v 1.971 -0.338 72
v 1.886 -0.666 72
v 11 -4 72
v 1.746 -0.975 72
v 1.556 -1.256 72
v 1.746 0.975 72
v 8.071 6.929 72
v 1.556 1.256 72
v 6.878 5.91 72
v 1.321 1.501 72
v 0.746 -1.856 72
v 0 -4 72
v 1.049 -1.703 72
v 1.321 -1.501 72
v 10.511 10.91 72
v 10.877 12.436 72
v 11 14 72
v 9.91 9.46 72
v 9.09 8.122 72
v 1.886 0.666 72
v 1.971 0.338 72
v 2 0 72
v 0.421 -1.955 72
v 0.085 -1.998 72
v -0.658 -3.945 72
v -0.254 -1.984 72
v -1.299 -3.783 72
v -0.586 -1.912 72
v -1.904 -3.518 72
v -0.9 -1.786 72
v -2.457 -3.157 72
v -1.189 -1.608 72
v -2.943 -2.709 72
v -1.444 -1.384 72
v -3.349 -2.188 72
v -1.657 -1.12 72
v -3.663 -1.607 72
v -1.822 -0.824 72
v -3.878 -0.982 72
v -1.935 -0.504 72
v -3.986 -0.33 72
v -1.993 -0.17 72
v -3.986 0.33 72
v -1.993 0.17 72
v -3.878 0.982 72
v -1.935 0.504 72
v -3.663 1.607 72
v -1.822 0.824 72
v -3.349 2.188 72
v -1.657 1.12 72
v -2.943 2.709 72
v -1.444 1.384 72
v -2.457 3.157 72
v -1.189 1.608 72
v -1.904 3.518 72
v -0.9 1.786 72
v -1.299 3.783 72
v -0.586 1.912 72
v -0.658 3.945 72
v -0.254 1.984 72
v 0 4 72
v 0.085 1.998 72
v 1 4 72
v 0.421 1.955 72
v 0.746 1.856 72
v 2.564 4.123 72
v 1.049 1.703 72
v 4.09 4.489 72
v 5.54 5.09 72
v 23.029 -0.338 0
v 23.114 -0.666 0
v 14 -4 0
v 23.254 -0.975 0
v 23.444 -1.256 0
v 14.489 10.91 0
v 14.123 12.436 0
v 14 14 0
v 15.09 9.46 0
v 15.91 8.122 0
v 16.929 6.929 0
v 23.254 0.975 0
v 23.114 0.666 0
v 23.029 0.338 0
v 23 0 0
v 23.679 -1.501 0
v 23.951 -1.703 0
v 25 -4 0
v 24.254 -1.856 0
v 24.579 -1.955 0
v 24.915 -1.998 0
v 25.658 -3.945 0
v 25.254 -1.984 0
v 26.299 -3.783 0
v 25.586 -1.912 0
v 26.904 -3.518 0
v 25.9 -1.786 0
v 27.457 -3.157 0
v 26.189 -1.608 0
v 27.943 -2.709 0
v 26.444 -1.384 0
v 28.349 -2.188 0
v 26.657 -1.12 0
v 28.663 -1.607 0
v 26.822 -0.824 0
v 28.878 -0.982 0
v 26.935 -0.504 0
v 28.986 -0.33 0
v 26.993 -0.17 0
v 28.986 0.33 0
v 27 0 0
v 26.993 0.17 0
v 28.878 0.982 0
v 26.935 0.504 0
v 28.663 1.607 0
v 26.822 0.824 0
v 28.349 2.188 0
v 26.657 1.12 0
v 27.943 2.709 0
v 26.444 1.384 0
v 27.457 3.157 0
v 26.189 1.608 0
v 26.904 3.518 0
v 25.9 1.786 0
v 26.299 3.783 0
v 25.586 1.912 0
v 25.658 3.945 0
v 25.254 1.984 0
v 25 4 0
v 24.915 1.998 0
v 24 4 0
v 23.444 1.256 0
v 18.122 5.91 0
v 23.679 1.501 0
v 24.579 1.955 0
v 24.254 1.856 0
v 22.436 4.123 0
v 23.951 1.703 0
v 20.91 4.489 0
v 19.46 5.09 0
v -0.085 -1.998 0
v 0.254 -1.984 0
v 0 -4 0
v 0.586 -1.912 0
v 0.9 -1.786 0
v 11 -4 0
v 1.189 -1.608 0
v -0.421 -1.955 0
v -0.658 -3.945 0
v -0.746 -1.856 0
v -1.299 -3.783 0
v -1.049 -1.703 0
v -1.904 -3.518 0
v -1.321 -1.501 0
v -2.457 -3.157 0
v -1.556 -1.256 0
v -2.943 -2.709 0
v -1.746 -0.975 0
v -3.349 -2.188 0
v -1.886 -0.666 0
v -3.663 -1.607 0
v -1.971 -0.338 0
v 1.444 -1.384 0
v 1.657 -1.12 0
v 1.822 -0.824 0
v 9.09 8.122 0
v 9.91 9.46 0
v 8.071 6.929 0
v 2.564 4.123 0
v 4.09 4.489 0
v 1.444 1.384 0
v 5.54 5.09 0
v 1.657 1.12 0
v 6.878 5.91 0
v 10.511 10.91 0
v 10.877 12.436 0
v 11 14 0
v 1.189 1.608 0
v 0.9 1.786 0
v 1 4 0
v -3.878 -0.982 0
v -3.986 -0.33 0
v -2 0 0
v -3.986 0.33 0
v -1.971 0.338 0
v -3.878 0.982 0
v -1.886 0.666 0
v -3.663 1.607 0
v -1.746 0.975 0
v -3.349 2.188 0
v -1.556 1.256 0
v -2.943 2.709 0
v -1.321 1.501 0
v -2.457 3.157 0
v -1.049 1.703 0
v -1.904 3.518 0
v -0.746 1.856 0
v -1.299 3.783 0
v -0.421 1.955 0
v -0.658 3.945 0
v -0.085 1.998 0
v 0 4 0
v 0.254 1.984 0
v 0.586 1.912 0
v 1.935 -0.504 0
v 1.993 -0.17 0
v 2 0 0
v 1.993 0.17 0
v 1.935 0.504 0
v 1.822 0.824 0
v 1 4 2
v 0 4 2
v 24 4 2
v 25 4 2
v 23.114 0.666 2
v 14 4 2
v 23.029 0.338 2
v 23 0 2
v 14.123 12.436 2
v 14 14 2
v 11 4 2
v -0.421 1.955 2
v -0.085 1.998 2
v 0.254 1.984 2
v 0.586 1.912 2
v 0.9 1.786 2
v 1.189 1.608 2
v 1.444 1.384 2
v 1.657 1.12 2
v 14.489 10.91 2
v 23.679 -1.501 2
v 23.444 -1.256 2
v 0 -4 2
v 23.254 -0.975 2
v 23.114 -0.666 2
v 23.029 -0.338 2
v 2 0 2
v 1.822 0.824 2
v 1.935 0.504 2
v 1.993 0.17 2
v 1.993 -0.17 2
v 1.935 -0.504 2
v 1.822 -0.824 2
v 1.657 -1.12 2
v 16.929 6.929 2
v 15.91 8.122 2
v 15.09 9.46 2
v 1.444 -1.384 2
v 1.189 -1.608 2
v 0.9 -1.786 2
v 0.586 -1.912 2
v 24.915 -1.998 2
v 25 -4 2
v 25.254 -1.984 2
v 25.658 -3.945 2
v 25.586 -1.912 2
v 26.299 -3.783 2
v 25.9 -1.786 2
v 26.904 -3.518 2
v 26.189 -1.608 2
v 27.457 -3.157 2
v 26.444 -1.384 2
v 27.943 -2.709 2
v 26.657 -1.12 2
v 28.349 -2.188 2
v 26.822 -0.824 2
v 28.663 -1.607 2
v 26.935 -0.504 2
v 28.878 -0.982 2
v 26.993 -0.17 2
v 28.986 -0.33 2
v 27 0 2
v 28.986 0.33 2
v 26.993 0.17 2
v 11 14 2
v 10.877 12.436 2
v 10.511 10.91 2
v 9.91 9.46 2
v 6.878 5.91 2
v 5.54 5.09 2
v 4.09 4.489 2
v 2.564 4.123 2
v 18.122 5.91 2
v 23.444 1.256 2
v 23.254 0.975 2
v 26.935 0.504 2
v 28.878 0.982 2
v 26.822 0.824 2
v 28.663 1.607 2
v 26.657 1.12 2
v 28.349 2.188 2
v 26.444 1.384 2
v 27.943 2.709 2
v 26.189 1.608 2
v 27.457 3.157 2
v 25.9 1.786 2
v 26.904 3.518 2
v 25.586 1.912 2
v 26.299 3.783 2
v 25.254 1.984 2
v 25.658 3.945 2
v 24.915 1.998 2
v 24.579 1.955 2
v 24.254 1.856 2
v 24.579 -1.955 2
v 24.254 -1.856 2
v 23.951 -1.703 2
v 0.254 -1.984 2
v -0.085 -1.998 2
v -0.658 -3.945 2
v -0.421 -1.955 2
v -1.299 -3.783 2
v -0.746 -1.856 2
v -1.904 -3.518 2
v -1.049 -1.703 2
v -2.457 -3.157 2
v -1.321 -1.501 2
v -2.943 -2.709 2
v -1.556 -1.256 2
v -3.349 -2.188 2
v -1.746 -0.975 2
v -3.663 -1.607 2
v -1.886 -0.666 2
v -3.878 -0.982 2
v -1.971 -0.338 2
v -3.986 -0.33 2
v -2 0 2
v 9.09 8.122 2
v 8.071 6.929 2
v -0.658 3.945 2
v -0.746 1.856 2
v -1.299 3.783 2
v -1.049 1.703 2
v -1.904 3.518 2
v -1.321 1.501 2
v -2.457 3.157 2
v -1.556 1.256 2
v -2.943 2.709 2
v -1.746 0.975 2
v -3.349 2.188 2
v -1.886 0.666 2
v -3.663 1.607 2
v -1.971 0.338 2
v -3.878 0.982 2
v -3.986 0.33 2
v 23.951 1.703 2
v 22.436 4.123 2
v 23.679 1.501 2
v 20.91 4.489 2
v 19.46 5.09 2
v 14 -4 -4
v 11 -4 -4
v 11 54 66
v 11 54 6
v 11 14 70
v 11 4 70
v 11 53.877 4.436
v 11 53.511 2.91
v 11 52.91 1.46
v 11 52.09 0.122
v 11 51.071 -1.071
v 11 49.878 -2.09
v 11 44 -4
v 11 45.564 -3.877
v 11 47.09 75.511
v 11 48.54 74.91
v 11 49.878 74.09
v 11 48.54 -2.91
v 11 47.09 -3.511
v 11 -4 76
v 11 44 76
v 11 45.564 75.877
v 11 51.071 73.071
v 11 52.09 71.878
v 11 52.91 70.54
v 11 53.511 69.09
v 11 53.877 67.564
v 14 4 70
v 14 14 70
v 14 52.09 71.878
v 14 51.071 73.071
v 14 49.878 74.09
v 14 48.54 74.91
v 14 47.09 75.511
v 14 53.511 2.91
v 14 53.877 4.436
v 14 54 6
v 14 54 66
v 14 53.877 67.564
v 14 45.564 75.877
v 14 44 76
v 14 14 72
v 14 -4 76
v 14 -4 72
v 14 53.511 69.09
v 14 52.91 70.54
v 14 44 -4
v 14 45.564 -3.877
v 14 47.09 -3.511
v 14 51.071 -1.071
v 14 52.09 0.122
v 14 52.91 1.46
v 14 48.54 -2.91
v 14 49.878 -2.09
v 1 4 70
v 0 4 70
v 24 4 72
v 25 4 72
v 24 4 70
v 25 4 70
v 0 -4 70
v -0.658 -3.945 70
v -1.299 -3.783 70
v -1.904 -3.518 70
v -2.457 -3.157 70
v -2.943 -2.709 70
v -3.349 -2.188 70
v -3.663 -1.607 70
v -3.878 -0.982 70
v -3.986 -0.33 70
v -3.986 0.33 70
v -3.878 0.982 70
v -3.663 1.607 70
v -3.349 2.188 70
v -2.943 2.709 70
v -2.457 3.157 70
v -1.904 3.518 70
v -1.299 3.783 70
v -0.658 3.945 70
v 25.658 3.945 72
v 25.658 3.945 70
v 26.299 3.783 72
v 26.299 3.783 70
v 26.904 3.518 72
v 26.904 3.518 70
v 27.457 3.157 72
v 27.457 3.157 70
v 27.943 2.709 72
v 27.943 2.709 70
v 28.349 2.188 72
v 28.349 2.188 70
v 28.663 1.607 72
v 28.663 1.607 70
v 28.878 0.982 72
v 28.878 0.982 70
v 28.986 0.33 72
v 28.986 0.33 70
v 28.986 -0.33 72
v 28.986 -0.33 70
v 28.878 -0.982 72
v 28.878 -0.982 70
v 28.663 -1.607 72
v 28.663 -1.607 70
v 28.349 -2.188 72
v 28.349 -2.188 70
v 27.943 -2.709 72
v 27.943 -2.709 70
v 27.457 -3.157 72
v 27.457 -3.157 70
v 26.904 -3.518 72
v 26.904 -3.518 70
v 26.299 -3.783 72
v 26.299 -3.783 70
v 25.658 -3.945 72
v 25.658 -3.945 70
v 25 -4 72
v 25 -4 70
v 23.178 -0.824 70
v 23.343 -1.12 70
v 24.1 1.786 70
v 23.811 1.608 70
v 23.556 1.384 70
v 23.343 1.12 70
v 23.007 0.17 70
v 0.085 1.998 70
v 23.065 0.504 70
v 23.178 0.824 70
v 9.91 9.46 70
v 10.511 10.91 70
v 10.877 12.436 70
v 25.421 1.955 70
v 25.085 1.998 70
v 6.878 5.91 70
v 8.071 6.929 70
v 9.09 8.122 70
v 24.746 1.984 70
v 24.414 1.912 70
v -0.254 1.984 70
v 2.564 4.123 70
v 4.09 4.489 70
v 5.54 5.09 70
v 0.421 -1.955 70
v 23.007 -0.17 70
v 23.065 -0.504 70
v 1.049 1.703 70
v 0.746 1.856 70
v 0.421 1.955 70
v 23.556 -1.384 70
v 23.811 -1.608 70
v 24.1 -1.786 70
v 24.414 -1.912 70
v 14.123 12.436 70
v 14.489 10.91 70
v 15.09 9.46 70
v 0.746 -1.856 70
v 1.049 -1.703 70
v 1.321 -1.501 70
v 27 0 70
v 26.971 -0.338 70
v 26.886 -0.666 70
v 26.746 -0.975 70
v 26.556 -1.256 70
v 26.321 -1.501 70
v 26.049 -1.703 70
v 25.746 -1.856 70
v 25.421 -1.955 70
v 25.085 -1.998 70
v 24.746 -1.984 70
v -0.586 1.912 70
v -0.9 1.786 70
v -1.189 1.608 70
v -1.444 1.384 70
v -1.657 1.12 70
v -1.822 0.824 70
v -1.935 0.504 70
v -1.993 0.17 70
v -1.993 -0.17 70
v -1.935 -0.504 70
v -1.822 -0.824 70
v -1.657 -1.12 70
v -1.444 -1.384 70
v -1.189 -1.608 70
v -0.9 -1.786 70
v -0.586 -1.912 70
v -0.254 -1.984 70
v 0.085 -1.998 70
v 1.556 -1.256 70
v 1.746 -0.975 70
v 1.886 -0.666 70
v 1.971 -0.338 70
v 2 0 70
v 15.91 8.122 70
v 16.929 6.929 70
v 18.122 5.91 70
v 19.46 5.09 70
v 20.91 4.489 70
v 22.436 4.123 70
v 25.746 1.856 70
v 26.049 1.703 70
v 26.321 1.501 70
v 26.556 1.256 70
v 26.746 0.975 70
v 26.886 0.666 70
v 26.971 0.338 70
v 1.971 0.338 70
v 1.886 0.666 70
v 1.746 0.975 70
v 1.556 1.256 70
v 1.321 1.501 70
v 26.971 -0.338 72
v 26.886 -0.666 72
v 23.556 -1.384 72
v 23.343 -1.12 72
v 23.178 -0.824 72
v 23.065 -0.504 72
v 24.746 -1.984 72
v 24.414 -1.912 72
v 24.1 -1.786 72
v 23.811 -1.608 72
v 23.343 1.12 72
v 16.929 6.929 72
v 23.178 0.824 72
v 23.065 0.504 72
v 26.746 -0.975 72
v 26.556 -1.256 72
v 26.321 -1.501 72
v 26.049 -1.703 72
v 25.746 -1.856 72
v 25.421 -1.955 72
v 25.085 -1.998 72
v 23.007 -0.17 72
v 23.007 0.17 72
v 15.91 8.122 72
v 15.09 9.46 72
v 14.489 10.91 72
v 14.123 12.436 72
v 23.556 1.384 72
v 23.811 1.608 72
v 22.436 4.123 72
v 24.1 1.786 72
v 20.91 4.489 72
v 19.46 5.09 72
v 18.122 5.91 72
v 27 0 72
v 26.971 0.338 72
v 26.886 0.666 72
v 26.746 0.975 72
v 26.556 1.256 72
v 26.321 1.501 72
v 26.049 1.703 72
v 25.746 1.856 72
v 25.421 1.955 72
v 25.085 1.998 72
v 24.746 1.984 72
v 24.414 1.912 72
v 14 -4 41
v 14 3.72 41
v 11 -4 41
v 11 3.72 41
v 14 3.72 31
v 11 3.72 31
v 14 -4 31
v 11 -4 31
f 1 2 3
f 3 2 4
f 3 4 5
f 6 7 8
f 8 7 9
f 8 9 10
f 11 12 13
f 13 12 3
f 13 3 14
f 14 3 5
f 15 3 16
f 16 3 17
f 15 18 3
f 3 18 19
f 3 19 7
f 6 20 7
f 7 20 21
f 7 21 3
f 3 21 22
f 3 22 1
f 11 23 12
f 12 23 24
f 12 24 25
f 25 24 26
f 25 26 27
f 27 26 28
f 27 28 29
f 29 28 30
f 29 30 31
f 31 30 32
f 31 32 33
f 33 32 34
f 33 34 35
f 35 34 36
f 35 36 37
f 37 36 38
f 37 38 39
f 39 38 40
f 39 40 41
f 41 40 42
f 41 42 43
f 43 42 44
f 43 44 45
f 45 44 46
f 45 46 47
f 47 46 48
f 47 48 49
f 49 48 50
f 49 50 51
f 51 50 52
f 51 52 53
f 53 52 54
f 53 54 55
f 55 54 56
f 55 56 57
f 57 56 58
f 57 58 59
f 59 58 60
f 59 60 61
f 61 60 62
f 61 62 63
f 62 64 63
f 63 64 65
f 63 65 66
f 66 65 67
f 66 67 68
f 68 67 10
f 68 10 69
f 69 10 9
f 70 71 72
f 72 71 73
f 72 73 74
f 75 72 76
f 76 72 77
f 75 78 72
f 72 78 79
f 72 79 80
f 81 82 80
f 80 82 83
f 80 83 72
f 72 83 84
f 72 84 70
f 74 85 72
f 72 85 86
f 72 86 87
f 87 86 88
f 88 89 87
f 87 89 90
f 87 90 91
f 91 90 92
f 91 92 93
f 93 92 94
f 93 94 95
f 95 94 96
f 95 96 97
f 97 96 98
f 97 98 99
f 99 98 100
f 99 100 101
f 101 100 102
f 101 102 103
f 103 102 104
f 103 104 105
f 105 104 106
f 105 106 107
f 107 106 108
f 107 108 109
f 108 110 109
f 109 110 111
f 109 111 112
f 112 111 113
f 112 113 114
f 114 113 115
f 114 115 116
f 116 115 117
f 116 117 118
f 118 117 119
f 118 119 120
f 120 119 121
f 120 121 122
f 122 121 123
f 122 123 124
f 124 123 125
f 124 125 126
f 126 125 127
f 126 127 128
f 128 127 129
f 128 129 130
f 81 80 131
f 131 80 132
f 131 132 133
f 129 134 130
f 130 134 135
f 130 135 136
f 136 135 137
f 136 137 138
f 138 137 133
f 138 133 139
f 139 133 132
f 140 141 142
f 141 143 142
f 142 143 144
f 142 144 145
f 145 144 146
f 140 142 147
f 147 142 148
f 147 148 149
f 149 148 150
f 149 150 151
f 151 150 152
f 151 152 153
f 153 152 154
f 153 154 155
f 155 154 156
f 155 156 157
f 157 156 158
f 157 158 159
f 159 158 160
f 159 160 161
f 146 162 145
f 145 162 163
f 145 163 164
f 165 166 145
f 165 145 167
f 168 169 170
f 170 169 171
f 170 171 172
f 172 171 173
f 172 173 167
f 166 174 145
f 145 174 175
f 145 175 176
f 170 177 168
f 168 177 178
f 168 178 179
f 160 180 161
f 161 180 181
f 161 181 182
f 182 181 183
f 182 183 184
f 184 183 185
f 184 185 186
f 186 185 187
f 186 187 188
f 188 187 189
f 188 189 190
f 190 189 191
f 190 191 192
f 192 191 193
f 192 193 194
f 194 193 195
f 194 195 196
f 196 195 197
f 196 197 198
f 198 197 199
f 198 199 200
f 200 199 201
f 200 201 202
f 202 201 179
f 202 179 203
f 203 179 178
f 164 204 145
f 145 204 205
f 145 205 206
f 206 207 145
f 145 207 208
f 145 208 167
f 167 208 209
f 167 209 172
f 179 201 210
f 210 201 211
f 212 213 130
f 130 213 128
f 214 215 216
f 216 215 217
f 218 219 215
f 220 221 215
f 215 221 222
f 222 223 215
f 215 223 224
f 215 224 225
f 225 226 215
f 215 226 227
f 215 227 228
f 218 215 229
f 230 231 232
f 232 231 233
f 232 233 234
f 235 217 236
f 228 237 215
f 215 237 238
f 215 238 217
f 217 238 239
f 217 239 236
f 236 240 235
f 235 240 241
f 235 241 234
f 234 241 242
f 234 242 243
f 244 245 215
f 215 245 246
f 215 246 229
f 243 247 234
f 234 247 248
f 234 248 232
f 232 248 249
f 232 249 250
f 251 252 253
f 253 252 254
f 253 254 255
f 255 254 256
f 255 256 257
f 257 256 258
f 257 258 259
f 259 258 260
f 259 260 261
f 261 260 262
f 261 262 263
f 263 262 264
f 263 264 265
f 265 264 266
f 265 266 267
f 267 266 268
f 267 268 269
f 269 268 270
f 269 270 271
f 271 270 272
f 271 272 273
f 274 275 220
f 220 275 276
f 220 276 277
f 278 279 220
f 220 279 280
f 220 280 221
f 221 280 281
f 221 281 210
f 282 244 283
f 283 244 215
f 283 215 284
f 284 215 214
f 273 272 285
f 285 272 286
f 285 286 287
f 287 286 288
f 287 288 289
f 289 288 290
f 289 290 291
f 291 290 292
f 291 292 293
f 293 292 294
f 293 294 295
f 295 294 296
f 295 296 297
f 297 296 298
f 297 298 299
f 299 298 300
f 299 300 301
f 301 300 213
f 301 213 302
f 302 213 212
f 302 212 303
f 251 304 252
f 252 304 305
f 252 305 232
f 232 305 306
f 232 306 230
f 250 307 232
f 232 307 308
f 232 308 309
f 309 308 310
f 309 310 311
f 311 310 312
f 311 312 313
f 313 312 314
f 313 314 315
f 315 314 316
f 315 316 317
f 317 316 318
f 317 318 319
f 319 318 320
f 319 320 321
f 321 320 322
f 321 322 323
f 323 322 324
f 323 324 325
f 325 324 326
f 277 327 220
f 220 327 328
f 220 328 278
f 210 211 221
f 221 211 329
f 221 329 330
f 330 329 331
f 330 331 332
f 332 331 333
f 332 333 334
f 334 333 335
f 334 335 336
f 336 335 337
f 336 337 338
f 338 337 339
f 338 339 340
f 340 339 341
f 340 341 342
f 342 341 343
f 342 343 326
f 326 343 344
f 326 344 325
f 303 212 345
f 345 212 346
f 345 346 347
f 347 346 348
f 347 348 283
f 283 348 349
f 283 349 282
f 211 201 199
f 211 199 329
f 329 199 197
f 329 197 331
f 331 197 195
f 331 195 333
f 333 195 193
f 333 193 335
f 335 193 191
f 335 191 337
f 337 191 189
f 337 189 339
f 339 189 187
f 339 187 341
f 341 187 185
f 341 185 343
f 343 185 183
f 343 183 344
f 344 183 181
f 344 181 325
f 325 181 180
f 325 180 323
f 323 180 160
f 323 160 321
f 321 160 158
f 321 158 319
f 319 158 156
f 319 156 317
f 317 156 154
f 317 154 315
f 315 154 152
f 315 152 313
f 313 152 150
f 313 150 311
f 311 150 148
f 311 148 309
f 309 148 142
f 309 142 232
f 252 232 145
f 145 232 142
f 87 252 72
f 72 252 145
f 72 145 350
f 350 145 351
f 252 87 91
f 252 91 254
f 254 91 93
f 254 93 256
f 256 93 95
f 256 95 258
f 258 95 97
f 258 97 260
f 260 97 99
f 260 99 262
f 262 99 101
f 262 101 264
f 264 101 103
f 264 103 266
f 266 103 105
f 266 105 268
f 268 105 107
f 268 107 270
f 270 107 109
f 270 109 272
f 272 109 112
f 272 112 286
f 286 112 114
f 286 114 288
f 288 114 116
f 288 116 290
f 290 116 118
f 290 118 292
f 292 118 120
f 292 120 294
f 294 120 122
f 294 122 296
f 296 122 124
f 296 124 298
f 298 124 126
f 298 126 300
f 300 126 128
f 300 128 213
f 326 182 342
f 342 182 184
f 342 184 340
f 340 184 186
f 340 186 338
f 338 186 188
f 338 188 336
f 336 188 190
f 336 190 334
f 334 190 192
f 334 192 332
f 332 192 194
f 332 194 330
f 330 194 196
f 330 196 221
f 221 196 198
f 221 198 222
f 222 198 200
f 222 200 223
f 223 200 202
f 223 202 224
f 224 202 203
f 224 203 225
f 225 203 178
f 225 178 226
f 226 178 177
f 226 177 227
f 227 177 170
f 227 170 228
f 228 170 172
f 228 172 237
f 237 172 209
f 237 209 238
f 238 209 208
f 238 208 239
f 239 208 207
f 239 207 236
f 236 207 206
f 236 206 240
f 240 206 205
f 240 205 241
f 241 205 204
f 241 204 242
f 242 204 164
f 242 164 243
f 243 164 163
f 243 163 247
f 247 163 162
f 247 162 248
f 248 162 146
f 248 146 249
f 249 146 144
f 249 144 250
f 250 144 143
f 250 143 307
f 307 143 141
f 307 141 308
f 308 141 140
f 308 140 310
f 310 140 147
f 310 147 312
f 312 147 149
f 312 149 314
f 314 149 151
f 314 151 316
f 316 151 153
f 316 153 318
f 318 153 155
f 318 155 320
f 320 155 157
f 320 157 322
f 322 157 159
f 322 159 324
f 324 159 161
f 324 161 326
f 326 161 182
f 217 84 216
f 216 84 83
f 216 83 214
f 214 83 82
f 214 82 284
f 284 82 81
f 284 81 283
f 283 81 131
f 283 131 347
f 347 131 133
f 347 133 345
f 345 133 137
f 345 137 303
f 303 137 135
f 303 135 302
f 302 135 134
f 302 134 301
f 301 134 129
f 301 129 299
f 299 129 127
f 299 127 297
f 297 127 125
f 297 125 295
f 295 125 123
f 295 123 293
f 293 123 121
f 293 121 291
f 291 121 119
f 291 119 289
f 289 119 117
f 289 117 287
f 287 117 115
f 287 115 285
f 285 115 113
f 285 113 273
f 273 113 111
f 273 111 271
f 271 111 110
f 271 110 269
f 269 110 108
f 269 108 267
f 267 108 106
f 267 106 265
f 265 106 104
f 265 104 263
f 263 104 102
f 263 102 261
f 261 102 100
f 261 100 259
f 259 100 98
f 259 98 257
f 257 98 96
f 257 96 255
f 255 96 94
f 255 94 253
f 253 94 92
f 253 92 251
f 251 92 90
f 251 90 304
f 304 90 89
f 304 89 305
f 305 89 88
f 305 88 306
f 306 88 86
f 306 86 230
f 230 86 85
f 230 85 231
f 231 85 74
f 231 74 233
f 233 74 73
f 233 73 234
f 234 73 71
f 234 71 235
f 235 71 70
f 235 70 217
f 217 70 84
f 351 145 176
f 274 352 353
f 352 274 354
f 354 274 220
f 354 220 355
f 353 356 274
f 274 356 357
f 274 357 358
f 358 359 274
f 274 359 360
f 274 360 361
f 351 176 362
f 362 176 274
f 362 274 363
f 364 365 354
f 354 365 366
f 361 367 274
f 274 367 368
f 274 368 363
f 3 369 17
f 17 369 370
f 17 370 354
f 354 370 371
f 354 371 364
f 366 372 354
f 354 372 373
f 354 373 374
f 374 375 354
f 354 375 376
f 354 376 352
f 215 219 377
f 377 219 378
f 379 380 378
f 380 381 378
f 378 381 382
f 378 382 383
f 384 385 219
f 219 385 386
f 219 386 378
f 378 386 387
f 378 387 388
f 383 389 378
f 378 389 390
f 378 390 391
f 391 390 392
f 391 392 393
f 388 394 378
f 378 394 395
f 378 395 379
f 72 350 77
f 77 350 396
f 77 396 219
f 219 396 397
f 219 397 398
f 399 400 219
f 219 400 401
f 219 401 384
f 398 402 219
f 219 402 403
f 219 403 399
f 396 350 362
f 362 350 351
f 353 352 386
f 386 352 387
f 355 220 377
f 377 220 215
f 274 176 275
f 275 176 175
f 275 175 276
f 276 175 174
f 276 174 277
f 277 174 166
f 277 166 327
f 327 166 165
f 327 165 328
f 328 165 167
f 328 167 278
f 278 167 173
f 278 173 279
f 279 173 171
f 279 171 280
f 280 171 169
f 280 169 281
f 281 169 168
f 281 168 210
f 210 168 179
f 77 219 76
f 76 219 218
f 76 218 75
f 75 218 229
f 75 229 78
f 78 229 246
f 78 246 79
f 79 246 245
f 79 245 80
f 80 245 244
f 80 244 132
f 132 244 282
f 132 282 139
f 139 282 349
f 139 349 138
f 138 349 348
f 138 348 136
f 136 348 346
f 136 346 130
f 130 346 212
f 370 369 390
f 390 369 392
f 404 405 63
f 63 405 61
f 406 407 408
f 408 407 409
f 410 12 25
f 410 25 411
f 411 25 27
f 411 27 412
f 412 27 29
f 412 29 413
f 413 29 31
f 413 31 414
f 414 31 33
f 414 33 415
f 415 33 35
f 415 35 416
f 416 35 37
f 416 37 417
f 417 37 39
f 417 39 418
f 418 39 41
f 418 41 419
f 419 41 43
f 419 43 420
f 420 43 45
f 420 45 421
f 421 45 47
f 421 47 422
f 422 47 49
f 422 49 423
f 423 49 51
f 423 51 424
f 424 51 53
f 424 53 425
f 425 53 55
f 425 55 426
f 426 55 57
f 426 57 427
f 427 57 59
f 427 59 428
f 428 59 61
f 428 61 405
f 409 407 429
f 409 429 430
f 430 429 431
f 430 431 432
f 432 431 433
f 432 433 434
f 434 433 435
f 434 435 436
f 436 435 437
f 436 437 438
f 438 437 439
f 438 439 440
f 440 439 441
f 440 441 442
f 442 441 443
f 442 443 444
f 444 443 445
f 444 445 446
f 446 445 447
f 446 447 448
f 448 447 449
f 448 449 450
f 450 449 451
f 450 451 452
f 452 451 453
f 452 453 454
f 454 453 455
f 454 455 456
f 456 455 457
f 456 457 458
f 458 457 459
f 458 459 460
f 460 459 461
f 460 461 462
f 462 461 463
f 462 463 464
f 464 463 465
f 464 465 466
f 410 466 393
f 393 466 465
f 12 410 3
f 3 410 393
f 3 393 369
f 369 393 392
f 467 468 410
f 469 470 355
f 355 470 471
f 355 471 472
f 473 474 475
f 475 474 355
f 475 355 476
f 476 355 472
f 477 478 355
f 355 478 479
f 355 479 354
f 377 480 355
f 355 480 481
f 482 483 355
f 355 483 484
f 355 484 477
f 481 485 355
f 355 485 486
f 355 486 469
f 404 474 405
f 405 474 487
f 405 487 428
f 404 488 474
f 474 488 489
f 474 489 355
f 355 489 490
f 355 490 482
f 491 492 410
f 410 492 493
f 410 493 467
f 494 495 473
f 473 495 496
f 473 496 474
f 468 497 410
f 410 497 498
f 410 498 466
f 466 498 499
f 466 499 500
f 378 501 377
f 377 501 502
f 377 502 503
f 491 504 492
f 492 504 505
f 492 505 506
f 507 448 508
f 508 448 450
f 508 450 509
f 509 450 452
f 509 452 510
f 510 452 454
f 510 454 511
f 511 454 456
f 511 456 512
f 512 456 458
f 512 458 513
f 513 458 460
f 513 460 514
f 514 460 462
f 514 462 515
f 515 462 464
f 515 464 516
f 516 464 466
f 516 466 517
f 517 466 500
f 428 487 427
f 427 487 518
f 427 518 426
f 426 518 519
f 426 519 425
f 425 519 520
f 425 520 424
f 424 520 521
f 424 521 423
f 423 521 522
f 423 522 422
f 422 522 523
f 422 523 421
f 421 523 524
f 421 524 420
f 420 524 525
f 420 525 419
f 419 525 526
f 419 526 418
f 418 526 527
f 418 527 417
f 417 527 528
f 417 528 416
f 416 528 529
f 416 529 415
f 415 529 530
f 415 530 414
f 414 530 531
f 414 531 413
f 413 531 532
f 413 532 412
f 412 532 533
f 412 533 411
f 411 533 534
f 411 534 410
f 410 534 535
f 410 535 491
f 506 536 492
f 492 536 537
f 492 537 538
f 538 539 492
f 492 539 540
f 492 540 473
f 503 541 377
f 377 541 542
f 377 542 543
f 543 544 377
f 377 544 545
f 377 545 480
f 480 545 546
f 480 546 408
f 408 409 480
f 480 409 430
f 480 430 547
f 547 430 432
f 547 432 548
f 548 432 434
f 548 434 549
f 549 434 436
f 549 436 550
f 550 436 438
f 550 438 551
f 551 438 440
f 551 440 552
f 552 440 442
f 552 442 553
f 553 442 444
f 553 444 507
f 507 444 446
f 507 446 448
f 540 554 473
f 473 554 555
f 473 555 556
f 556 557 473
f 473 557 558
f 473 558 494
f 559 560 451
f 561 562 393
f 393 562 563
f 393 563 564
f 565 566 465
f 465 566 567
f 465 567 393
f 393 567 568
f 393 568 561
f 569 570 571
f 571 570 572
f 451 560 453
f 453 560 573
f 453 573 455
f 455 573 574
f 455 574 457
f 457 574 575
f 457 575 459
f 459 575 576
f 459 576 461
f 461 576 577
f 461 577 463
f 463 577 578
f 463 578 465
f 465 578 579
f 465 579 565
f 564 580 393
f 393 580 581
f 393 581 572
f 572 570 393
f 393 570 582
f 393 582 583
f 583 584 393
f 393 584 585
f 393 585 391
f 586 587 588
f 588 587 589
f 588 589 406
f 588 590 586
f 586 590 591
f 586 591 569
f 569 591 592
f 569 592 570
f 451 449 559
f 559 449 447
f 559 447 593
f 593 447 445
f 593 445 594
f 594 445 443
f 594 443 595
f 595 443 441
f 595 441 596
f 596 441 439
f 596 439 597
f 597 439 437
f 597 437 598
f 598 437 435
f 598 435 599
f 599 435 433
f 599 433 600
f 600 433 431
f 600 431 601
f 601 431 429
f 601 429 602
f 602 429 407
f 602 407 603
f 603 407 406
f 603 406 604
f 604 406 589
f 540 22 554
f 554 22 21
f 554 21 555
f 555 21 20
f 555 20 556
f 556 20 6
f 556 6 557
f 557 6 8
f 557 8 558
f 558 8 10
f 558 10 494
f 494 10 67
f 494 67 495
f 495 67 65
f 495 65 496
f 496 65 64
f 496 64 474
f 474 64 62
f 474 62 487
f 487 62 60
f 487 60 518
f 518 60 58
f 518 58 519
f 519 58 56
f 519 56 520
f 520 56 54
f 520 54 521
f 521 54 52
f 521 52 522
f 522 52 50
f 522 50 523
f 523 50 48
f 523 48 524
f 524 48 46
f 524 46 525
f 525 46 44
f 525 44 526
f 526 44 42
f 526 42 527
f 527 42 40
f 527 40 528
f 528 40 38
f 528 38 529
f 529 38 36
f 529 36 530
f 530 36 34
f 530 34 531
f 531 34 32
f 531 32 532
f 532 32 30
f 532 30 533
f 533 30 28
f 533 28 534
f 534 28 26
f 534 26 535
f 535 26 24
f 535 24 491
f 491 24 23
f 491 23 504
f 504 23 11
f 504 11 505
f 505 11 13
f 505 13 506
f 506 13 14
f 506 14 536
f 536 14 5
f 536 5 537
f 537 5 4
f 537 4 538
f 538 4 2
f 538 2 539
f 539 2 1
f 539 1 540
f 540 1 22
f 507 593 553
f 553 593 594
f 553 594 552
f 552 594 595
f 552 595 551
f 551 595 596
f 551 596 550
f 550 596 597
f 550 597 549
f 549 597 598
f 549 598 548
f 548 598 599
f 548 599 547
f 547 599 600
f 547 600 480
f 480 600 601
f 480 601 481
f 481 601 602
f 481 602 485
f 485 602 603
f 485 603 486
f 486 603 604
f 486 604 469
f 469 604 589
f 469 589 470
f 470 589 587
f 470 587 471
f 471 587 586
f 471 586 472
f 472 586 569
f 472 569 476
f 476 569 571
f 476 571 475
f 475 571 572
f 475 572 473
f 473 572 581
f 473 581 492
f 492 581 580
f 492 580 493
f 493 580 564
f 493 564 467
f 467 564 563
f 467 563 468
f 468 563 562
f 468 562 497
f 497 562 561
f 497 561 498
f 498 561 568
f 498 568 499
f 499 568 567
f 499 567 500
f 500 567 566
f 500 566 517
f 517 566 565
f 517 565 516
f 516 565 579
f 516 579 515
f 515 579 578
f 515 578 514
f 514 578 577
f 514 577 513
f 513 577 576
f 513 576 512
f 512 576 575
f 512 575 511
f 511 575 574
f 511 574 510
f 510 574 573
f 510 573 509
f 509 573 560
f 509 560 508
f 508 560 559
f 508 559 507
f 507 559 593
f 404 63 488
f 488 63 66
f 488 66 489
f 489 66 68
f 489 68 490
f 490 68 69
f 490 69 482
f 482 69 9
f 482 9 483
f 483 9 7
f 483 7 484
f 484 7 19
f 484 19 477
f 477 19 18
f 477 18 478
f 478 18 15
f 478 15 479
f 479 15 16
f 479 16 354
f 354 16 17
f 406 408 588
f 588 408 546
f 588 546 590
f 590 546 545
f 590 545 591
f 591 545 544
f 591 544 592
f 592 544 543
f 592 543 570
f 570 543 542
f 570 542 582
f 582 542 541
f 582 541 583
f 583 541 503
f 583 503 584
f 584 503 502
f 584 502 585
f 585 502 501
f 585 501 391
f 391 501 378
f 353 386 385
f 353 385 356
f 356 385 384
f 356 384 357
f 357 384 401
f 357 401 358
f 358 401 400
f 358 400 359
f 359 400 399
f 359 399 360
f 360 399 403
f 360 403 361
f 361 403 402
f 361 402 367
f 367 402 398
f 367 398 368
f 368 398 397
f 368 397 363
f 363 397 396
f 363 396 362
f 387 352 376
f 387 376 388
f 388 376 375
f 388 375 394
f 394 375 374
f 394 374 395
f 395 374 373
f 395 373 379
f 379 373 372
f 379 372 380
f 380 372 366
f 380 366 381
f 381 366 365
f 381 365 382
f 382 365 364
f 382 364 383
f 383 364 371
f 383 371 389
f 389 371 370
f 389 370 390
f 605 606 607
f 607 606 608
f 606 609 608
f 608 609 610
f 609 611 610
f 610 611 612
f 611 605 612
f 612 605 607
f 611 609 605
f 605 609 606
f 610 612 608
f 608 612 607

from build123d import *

# Parameters (mm, degrees)
SKETCH1_R            = 2
BOSS_EXTRUDE1_DEPTH  = 2
SKETCH2_W            = 3
SKETCH2_H            = 40
BOSS_EXTRUDE2_DEPTH  = 50
SKETCH4_W            = 3
SKETCH4_H            = 4
BOSS_EXTRUDE4_DEPTH  = 8
FILLET1_R            = 10
FILLET1_OF_MIRROR2_R = 10
FILLET2_R            = 10
SKETCH3_W            = 10
SKETCH3_H            = 7.72
BOSS_EXTRUDE3_DEPTH  = 3


with BuildPart() as part:
    # Sketch1 → Boss-Extrude1 (new body)
    with BuildSketch(Plane.XY):
        with BuildLine():
            Line((0, 4), (25, 4))
            ThreePointArc((25, 4), (29, 0), (25, -4))
            Line((25, -4), (0, -4))
            ThreePointArc((0, -4), (-4, 0), (0, 4))
        make_face()
        Circle(SKETCH1_R, mode=Mode.SUBTRACT)
        with Locations((25, 0)):
            Circle(SKETCH1_R, mode=Mode.SUBTRACT)
    boss_extrude1 = extrude(amount=BOSS_EXTRUDE1_DEPTH)

    # Sketch2 → Boss-Extrude2 (add)
    with BuildSketch(Plane(origin=(0, 4, 0), x_dir=(1, 0, 0), z_dir=(0, 1, 0))):
        with Locations((12.5, -16)):
            Rectangle(SKETCH2_W, SKETCH2_H)
    boss_extrude2 = extrude(amount=BOSS_EXTRUDE2_DEPTH)

    # Sketch4 → Boss-Extrude4 (add)
    with BuildSketch(Plane.XZ.offset(-4)):
        with Locations((12.5, -2)):
            Rectangle(SKETCH4_W, SKETCH4_H)
    boss_extrude4 = extrude(amount=BOSS_EXTRUDE4_DEPTH)

    # Fillet1
    fillet1_edges = [part.edges().sort_by_distance(p)[0] for p in [
        (14, 4, 1),
        (11, 4, 1),
    ]]
    fillet(fillet1_edges, radius=FILLET1_R)

    # Mirror1: Boss-Extrude2 across plane
    add(boss_extrude2.mirror(Plane.XY.offset(36)))

    # Mirror2: Boss-Extrude1, Boss-Extrude4 across plane
    add(boss_extrude1.mirror(Plane.XY.offset(36)))
    add(boss_extrude4.mirror(Plane.XY.offset(36)))

    # Fillet1 of Mirror2
    fillet1_of_mirror2_edges = [part.edges().sort_by_distance(p)[0] for p in [
        (14, 4, 71),
        (11, 4, 71),
    ]]
    fillet(fillet1_of_mirror2_edges, radius=FILLET1_OF_MIRROR2_R)

    # Fillet2
    fillet2_edges = [part.edges().sort_by_distance(p)[0] for p in [
        (12.5, 54, -4),
        (12.5, 54, 76),
    ]]
    fillet(fillet2_edges, radius=FILLET2_R)


with BuildPart() as body_2:
    # Sketch3 → Boss-Extrude3 (new body)
    with BuildSketch(Plane(origin=(14, 0, 0), x_dir=(0, 0, -1), z_dir=(1, 0, 0))):
        with Locations((-36, -0.14)):
            Rectangle(SKETCH3_W, SKETCH3_H)
    extrude(amount=-BOSS_EXTRUDE3_DEPTH)


solid = Compound([part.part, body_2.part])
